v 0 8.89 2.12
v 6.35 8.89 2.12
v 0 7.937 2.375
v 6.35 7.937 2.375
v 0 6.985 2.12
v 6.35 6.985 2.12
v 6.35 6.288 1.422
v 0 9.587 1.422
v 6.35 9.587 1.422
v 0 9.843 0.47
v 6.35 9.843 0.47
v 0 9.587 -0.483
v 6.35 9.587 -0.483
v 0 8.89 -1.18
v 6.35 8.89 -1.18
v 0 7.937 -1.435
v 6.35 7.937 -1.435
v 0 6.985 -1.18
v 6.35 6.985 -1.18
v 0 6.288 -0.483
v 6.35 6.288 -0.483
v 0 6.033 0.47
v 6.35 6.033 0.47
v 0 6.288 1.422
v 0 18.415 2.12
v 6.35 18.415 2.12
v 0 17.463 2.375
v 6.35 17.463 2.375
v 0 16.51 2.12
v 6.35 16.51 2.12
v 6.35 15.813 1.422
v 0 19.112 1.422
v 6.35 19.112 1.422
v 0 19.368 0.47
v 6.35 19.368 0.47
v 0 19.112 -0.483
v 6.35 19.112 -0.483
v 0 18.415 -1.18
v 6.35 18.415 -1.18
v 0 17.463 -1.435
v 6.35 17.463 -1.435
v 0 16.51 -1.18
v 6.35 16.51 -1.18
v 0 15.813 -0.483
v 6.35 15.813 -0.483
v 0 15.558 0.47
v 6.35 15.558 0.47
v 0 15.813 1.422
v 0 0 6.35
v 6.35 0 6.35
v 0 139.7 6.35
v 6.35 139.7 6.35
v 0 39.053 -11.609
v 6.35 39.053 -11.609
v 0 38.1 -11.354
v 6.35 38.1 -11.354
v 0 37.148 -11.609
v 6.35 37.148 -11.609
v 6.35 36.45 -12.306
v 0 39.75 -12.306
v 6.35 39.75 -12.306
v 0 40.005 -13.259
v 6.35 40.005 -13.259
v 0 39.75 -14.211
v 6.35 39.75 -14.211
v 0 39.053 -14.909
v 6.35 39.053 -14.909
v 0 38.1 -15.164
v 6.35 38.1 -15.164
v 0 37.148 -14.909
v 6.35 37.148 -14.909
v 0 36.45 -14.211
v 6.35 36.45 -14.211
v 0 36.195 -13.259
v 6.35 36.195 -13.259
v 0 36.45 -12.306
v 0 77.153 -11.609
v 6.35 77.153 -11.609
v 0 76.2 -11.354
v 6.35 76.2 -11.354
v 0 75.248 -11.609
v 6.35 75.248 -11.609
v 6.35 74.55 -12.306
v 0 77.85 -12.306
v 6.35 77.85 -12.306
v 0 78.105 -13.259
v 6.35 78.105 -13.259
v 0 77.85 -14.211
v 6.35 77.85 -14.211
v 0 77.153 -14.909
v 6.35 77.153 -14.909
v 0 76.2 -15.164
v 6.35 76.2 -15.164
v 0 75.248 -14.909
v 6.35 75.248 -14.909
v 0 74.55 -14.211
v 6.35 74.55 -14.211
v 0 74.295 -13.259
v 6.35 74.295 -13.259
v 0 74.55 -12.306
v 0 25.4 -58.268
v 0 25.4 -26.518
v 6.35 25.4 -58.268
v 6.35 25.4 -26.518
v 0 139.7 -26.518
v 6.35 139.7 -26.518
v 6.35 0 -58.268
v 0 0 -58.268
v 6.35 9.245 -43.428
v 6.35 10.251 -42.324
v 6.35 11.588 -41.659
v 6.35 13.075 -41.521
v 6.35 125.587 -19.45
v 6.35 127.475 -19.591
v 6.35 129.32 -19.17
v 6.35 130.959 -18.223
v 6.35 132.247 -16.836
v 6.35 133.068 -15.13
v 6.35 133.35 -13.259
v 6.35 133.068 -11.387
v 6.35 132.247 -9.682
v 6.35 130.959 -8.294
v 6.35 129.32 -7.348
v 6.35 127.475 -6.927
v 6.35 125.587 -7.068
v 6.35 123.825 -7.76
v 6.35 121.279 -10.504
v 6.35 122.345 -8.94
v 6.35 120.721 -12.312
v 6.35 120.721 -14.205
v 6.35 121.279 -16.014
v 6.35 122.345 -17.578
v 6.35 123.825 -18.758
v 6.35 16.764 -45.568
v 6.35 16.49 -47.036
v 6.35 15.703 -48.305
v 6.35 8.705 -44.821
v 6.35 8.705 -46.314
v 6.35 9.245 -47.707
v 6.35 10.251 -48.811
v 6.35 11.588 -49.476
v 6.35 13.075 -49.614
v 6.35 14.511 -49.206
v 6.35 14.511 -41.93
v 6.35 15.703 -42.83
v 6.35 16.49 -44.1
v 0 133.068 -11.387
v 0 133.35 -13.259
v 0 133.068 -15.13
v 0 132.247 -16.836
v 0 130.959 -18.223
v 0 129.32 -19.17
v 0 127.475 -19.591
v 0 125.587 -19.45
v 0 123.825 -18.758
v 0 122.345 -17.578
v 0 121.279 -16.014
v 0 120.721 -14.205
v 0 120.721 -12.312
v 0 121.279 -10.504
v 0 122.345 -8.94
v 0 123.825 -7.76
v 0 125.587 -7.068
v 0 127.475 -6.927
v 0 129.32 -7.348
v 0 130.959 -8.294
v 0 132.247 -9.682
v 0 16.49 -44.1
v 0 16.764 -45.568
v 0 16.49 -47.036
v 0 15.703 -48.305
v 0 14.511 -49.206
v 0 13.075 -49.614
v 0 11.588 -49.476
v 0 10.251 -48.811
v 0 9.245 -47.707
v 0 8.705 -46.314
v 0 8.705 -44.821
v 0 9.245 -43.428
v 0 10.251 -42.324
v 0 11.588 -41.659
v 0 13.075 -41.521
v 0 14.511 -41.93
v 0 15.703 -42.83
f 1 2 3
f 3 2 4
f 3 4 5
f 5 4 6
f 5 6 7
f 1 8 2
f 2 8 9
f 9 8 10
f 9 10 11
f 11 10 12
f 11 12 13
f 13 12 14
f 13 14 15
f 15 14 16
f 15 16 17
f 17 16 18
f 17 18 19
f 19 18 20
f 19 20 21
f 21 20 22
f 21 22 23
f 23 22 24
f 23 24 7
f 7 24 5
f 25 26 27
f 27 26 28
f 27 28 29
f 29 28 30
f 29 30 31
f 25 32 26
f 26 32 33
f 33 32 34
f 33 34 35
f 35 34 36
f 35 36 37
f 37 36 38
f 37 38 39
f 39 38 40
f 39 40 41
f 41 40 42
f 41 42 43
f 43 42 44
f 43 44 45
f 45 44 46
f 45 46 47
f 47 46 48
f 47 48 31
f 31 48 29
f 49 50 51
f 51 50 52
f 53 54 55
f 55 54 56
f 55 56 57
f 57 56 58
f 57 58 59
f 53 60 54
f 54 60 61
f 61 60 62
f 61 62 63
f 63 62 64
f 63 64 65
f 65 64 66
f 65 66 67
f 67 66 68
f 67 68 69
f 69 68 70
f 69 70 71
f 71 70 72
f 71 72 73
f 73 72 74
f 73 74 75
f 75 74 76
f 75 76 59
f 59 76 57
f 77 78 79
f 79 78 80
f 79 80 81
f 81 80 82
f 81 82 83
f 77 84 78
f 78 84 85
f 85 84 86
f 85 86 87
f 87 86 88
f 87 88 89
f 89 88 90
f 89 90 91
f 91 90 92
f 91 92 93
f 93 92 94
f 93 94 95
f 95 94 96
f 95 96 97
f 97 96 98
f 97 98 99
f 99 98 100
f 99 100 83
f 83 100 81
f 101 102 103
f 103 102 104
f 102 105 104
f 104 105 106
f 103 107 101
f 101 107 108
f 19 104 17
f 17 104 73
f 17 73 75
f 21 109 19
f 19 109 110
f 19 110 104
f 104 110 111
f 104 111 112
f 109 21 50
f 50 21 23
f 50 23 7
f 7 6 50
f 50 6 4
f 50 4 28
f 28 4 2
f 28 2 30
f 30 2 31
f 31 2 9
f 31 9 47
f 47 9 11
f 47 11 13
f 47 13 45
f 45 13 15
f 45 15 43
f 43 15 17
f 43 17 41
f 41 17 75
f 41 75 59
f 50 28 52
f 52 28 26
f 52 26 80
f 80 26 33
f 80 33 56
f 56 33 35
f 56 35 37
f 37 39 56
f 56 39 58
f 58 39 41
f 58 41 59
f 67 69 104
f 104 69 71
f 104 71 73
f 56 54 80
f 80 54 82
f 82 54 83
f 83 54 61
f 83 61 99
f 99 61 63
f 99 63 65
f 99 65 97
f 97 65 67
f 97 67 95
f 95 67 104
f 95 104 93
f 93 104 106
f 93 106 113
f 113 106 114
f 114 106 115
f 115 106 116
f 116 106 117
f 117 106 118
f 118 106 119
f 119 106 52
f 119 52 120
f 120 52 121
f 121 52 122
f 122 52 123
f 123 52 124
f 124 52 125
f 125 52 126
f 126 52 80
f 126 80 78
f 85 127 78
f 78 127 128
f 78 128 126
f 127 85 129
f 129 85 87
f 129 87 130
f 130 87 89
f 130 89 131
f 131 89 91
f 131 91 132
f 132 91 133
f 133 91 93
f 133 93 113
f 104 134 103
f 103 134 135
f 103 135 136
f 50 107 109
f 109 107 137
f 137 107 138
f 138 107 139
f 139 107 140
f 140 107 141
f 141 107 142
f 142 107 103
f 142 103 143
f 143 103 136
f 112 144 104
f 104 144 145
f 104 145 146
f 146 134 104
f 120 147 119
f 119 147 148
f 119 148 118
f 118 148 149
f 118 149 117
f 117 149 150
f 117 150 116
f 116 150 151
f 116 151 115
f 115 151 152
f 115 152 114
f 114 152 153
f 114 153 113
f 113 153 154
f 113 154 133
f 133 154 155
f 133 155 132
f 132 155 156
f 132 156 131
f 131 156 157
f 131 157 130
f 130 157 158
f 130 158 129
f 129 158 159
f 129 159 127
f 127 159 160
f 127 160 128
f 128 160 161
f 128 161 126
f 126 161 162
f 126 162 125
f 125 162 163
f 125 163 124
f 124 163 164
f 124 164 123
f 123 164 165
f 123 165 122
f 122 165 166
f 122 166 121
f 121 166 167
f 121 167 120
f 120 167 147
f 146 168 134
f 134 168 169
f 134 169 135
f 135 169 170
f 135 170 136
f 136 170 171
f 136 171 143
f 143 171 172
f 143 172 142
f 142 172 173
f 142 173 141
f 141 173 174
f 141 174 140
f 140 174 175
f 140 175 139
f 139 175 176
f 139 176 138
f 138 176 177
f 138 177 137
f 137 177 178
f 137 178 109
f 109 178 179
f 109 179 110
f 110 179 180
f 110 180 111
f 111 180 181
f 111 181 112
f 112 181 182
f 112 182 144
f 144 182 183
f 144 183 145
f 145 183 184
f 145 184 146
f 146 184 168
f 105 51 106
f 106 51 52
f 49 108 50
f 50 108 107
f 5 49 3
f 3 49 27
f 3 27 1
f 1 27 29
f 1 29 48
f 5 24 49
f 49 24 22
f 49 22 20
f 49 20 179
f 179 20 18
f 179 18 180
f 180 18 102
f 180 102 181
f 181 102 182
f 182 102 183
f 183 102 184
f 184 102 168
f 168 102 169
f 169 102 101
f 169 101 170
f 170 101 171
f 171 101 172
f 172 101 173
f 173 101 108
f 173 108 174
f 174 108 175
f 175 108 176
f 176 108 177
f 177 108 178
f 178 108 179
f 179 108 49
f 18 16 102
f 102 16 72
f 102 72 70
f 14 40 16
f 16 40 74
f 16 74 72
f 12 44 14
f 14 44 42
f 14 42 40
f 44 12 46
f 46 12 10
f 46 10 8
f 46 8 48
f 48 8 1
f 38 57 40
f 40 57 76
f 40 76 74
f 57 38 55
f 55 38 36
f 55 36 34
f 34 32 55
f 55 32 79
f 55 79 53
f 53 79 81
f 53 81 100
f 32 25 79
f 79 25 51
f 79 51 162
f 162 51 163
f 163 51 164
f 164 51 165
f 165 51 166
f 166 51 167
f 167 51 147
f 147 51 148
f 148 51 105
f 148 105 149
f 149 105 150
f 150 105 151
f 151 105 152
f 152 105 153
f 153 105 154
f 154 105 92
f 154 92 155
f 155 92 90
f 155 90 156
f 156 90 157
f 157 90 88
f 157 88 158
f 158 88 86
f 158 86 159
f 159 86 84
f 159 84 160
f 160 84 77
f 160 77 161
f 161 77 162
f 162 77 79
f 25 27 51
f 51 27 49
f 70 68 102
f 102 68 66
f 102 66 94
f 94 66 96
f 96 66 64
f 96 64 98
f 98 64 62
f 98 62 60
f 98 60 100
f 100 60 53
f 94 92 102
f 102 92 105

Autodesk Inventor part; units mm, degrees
ref_plane "YZ Plane" through (0, 0, 0) normal (1, 0, 0) x (0, 1, 0)
ref_plane "XZ Plane" through (0, 0, 0) normal (0, 1, 0) x (-1, 0, 0)
ref_plane "XY Plane" through (0, 0, 0) normal (0, 0, 1) x (1, 0, 0)
sketch "Sketch1" plane through (0, 0, 0) normal (1, 0, 0) x (0, 1, 0)
  line L0 (0, 0) -> (139.7, 0)
  line L1 (139.7, 0) -> (139.7, -58.2676)
  line L2 (139.7, -58.2676) -> (0, -58.2676)
  line L3 (0, -58.2676) -> (0, 0)
  circle A0 centre (127, -13.2588) radius 6.35
  circle A1 centre (12.7, -45.5676) radius 4.064
  line L4 (139.7, -58.2676) -> (25.4, -58.2676)
  line L5 (25.4, -58.2676) -> (25.4, -26.5176)
  line L6 (25.4, -26.5176) -> (139.7, -26.5176)
  line L7 (139.7, -26.5176) -> (139.7, -58.2676)
  dimension "d0" = 139.7
  dimension "d2" = 12.7
  dimension "d3" = 8.128
  dimension "d5" = 114.3
  dimension "d6" = 12.7
  dimension "d7" = 12.7
  dimension "d8" = 13.2588
  dimension "d9" = 12.7
  dimension "d24" = 26.5176
  dimension "d26" = 32.3088
extrude "Extrusion1" add sketch "Sketch1" along normal blind 6.35 contours L0 L1 L6 L5 L2 L3
sketch "Sketch2" plane through (6.35, 0, 0) normal (1, 0, 0) x (0, 0, -1)
  line L0 (0, 0) -> (58.2676, 0) projected
  line L1 (26.5176, 139.7) -> (0, 139.7) projected
  line L2 (0, 139.7) -> (0, 0) projected
  point P0 (13.2588, 38.1)
  point P1 (13.2588, 76.2)
  dimension "d12" = 76.2
  dimension "d13" = 38.1
  dimension "d14" = 26.5176
  dimension "d15" = 13.2588
  dimension "d16" = 13.2588
hole "Hole1" at (6.35, 38.1, -13.2588) at (6.35, 76.2, -13.2588) direction (-1, 0, 0) diameter 3.81 end through all
sketch "Sketch3" plane through (0, 0, 0) normal (0, 0, 1) x (1, 0, 0)
  line L0 (0, 139.7) -> (0, 0) projected
  line L1 (0, 0) -> (6.35, 0) projected
  line L2 (6.35, 139.7) -> (6.35, 0) projected
  line L3 (0, 139.7) -> (6.35, 139.7) projected
extrude "Extrusion2" add sketch "Sketch3" along normal blind 6.35
sketch "Sketch4" plane through (6.35, 0, 0) normal (1, 0, 0) x (0, 0, -1)
  circle A0 centre (13.2588, 38.1) radius 1.905 projected
  circle A1 centre (13.2588, 76.2) radius 1.905 projected
  line L0 (58.2676, 25.4) -> (26.5176, 25.4) projected
  line L1 (26.5176, 25.4) -> (26.5176, 139.7) projected
  line L2 (26.5176, 139.7) -> (-6.35, 139.7) projected
  line L3 (-6.35, 0) -> (-6.35, 139.7) projected
  line L4 (58.2676, 0) -> (-6.35, 0) projected
  line L5 (58.2676, 0) -> (58.2676, 25.4) projected
  circle A2 centre (45.5676, 12.7) radius 4.064 projected
  circle A3 centre (13.2588, 127) radius 6.35 projected
  point P0 (0, 0)
  point P1 (-0.4699, 7.9375)
  point P2 (-0.4699, 17.4625)
  dimension "d29" = 9.525
  dimension "d30" = 7.9375
  dimension "d31" = 58.7375
  dimension "d32" = 58.7375
hole "Hole2" at (6.35, 7.9375, 0.4699) at (6.35, 17.4625, 0.4699) direction (-1, 0, 0) diameter 3.81 end through all
equation "\"d8\" = 0.5 * d24"
equation "\"d15\" = 0.5 * d14"
equation "\"d16\" = d15"
equation "\"d32\" = d31"
properties part number "PaddleCollection2.1AxleSupport" material "Nylon 6/6"
